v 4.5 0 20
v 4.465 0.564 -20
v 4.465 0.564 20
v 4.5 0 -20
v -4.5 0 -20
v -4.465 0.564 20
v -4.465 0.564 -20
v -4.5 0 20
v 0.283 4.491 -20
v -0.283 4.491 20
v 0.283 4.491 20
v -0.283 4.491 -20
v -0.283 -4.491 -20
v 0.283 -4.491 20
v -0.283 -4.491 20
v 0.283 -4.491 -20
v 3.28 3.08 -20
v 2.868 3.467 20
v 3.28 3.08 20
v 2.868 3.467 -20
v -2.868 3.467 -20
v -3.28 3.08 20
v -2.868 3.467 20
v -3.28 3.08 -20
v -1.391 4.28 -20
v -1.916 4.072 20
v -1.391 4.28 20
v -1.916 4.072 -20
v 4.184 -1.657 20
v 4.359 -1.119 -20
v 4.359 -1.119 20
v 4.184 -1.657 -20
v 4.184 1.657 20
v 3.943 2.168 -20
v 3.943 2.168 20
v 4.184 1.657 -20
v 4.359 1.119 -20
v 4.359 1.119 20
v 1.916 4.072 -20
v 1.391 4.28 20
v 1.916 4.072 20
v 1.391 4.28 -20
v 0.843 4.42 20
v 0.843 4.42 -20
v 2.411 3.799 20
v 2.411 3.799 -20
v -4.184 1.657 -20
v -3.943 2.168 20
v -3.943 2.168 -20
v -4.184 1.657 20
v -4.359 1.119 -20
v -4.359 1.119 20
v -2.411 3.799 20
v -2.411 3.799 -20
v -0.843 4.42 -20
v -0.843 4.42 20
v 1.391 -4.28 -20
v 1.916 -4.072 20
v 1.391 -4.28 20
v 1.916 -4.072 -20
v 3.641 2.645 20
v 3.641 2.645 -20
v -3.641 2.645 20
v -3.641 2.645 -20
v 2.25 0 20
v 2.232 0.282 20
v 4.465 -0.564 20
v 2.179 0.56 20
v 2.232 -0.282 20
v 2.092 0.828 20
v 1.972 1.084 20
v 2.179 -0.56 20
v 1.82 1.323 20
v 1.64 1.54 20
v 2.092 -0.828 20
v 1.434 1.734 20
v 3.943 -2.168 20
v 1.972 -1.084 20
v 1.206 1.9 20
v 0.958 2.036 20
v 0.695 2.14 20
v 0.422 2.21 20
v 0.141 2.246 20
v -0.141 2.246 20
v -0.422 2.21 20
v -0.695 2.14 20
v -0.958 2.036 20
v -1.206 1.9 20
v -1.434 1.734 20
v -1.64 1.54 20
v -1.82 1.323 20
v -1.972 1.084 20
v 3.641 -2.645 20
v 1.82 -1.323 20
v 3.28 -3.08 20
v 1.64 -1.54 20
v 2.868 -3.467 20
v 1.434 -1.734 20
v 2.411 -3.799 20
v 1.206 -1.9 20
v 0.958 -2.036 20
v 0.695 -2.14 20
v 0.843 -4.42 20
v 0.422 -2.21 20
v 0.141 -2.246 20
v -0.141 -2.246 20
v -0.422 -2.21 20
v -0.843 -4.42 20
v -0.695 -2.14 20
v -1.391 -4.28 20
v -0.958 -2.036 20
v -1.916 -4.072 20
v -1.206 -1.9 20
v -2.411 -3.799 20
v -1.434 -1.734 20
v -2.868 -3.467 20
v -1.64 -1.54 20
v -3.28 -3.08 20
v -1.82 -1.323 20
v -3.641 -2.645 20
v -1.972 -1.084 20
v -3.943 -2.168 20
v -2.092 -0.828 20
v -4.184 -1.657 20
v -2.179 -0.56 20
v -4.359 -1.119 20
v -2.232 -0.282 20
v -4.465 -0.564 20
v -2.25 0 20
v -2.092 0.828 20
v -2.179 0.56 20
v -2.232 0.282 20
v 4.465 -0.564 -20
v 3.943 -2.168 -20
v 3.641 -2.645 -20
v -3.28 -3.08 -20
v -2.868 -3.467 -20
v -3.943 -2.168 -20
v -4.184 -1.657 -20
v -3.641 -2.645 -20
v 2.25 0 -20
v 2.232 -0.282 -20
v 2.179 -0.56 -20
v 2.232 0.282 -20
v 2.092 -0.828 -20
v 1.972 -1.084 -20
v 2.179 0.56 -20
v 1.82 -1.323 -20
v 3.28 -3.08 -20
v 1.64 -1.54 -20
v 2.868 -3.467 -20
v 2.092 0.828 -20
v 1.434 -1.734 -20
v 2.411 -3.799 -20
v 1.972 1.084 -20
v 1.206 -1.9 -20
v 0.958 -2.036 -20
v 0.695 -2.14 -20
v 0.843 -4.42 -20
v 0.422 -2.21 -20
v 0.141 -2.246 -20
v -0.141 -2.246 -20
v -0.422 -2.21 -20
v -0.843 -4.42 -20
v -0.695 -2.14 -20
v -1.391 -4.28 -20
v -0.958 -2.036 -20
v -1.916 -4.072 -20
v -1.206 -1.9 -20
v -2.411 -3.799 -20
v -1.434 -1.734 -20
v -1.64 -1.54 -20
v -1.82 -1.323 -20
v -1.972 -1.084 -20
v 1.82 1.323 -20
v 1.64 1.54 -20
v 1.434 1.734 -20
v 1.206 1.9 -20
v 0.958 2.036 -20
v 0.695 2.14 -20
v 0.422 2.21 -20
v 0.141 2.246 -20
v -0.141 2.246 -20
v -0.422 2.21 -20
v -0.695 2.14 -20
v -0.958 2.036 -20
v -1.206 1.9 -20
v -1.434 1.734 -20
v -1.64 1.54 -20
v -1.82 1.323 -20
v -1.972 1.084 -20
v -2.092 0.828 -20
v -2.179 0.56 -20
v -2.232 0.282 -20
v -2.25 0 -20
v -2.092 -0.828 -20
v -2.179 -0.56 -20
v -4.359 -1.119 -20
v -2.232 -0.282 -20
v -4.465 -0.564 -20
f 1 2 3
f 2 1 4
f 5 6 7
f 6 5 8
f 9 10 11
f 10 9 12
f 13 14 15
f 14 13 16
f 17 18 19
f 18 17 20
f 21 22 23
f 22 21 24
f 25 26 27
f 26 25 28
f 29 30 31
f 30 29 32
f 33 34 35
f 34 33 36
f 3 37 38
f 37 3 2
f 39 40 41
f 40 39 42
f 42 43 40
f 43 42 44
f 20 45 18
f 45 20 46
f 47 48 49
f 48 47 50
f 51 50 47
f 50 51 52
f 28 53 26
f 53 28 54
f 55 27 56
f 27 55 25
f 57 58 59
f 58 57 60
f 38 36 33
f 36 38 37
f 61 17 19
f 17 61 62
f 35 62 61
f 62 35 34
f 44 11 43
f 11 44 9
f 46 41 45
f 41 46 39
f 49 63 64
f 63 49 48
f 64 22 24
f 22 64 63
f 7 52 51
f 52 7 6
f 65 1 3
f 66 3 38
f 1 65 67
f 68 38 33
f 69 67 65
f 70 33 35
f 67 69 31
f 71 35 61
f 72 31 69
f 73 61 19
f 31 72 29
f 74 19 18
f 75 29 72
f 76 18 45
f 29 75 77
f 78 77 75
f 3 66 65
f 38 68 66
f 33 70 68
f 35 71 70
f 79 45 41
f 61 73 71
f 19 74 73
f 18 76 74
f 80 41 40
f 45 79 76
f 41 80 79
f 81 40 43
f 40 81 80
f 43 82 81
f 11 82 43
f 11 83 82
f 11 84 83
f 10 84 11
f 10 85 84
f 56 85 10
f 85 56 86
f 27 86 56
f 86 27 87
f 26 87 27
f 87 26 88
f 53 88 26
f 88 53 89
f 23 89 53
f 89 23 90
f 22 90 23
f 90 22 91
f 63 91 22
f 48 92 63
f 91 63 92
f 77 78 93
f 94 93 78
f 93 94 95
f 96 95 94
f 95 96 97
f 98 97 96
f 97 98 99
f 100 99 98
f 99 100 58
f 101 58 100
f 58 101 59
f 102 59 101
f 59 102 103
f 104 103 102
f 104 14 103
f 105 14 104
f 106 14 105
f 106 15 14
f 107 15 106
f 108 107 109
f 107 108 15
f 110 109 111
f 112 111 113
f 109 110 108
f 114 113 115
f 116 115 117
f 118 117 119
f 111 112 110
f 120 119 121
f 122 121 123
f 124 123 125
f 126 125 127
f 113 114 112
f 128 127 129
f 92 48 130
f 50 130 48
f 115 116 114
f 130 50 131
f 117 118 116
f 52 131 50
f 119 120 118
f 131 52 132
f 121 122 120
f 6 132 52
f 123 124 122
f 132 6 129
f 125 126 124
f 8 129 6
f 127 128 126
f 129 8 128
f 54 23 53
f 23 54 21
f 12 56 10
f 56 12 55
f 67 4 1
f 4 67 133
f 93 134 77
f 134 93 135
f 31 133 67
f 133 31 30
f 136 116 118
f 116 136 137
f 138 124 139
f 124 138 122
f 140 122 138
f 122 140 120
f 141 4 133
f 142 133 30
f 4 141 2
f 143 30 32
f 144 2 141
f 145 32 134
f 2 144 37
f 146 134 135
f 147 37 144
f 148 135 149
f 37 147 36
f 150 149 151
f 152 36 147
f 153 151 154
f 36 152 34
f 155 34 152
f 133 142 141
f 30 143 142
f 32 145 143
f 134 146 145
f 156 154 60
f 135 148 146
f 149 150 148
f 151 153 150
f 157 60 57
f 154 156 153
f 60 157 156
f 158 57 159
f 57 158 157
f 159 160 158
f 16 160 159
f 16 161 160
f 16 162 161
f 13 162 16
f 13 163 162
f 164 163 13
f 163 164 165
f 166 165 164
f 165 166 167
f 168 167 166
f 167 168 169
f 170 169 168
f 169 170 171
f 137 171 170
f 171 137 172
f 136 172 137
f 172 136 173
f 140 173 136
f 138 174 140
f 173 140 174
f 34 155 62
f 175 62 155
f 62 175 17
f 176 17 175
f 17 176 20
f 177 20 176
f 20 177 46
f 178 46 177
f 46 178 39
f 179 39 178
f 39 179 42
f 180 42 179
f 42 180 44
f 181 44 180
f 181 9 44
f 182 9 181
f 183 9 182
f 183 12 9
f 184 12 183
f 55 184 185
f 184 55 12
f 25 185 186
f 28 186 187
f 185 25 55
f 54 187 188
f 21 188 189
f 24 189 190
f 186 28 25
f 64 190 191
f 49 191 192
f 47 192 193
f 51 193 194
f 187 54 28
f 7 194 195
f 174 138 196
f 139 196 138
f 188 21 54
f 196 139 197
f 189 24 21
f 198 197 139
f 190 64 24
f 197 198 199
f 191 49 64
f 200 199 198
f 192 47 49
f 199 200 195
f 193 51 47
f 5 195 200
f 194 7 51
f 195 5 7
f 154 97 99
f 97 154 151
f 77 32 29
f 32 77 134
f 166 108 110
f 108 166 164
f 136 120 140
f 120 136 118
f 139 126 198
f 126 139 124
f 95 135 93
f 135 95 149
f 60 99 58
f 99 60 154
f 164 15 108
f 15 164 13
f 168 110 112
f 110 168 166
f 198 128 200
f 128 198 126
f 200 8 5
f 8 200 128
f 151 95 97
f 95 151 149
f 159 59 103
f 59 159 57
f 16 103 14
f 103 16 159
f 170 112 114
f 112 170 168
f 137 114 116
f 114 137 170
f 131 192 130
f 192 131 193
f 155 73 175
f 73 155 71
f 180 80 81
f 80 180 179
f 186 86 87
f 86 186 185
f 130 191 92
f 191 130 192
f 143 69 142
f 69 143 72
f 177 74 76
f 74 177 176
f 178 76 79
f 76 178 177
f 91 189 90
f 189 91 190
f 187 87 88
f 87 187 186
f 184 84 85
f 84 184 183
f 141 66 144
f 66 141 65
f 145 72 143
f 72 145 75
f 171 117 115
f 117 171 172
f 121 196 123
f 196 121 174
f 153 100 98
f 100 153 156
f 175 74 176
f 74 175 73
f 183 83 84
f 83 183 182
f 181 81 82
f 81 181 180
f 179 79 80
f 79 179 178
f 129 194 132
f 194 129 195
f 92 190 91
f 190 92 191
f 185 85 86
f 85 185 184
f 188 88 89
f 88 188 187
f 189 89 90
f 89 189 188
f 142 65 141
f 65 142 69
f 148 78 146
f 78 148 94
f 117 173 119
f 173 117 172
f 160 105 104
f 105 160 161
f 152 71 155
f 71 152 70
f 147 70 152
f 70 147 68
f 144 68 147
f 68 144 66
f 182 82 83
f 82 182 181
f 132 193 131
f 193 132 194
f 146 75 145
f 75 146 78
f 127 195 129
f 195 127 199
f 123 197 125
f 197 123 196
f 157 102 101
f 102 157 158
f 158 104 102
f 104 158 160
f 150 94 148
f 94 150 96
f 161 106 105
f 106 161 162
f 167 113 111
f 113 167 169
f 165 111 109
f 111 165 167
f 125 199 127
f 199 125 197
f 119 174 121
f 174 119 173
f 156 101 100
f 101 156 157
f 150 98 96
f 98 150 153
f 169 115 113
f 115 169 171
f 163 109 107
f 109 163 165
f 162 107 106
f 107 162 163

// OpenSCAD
$fn = 50;


difference() {
	union() {
		translate(v = [0, 0, -20.0000000000]) {
			cylinder(h = 40, r = 4.5000000000);
		}
	}
	union() {
		translate(v = [0, 0, -100.0000000000]) {
			cylinder(h = 200, r = 2.2500000000);
		}
	}
}
